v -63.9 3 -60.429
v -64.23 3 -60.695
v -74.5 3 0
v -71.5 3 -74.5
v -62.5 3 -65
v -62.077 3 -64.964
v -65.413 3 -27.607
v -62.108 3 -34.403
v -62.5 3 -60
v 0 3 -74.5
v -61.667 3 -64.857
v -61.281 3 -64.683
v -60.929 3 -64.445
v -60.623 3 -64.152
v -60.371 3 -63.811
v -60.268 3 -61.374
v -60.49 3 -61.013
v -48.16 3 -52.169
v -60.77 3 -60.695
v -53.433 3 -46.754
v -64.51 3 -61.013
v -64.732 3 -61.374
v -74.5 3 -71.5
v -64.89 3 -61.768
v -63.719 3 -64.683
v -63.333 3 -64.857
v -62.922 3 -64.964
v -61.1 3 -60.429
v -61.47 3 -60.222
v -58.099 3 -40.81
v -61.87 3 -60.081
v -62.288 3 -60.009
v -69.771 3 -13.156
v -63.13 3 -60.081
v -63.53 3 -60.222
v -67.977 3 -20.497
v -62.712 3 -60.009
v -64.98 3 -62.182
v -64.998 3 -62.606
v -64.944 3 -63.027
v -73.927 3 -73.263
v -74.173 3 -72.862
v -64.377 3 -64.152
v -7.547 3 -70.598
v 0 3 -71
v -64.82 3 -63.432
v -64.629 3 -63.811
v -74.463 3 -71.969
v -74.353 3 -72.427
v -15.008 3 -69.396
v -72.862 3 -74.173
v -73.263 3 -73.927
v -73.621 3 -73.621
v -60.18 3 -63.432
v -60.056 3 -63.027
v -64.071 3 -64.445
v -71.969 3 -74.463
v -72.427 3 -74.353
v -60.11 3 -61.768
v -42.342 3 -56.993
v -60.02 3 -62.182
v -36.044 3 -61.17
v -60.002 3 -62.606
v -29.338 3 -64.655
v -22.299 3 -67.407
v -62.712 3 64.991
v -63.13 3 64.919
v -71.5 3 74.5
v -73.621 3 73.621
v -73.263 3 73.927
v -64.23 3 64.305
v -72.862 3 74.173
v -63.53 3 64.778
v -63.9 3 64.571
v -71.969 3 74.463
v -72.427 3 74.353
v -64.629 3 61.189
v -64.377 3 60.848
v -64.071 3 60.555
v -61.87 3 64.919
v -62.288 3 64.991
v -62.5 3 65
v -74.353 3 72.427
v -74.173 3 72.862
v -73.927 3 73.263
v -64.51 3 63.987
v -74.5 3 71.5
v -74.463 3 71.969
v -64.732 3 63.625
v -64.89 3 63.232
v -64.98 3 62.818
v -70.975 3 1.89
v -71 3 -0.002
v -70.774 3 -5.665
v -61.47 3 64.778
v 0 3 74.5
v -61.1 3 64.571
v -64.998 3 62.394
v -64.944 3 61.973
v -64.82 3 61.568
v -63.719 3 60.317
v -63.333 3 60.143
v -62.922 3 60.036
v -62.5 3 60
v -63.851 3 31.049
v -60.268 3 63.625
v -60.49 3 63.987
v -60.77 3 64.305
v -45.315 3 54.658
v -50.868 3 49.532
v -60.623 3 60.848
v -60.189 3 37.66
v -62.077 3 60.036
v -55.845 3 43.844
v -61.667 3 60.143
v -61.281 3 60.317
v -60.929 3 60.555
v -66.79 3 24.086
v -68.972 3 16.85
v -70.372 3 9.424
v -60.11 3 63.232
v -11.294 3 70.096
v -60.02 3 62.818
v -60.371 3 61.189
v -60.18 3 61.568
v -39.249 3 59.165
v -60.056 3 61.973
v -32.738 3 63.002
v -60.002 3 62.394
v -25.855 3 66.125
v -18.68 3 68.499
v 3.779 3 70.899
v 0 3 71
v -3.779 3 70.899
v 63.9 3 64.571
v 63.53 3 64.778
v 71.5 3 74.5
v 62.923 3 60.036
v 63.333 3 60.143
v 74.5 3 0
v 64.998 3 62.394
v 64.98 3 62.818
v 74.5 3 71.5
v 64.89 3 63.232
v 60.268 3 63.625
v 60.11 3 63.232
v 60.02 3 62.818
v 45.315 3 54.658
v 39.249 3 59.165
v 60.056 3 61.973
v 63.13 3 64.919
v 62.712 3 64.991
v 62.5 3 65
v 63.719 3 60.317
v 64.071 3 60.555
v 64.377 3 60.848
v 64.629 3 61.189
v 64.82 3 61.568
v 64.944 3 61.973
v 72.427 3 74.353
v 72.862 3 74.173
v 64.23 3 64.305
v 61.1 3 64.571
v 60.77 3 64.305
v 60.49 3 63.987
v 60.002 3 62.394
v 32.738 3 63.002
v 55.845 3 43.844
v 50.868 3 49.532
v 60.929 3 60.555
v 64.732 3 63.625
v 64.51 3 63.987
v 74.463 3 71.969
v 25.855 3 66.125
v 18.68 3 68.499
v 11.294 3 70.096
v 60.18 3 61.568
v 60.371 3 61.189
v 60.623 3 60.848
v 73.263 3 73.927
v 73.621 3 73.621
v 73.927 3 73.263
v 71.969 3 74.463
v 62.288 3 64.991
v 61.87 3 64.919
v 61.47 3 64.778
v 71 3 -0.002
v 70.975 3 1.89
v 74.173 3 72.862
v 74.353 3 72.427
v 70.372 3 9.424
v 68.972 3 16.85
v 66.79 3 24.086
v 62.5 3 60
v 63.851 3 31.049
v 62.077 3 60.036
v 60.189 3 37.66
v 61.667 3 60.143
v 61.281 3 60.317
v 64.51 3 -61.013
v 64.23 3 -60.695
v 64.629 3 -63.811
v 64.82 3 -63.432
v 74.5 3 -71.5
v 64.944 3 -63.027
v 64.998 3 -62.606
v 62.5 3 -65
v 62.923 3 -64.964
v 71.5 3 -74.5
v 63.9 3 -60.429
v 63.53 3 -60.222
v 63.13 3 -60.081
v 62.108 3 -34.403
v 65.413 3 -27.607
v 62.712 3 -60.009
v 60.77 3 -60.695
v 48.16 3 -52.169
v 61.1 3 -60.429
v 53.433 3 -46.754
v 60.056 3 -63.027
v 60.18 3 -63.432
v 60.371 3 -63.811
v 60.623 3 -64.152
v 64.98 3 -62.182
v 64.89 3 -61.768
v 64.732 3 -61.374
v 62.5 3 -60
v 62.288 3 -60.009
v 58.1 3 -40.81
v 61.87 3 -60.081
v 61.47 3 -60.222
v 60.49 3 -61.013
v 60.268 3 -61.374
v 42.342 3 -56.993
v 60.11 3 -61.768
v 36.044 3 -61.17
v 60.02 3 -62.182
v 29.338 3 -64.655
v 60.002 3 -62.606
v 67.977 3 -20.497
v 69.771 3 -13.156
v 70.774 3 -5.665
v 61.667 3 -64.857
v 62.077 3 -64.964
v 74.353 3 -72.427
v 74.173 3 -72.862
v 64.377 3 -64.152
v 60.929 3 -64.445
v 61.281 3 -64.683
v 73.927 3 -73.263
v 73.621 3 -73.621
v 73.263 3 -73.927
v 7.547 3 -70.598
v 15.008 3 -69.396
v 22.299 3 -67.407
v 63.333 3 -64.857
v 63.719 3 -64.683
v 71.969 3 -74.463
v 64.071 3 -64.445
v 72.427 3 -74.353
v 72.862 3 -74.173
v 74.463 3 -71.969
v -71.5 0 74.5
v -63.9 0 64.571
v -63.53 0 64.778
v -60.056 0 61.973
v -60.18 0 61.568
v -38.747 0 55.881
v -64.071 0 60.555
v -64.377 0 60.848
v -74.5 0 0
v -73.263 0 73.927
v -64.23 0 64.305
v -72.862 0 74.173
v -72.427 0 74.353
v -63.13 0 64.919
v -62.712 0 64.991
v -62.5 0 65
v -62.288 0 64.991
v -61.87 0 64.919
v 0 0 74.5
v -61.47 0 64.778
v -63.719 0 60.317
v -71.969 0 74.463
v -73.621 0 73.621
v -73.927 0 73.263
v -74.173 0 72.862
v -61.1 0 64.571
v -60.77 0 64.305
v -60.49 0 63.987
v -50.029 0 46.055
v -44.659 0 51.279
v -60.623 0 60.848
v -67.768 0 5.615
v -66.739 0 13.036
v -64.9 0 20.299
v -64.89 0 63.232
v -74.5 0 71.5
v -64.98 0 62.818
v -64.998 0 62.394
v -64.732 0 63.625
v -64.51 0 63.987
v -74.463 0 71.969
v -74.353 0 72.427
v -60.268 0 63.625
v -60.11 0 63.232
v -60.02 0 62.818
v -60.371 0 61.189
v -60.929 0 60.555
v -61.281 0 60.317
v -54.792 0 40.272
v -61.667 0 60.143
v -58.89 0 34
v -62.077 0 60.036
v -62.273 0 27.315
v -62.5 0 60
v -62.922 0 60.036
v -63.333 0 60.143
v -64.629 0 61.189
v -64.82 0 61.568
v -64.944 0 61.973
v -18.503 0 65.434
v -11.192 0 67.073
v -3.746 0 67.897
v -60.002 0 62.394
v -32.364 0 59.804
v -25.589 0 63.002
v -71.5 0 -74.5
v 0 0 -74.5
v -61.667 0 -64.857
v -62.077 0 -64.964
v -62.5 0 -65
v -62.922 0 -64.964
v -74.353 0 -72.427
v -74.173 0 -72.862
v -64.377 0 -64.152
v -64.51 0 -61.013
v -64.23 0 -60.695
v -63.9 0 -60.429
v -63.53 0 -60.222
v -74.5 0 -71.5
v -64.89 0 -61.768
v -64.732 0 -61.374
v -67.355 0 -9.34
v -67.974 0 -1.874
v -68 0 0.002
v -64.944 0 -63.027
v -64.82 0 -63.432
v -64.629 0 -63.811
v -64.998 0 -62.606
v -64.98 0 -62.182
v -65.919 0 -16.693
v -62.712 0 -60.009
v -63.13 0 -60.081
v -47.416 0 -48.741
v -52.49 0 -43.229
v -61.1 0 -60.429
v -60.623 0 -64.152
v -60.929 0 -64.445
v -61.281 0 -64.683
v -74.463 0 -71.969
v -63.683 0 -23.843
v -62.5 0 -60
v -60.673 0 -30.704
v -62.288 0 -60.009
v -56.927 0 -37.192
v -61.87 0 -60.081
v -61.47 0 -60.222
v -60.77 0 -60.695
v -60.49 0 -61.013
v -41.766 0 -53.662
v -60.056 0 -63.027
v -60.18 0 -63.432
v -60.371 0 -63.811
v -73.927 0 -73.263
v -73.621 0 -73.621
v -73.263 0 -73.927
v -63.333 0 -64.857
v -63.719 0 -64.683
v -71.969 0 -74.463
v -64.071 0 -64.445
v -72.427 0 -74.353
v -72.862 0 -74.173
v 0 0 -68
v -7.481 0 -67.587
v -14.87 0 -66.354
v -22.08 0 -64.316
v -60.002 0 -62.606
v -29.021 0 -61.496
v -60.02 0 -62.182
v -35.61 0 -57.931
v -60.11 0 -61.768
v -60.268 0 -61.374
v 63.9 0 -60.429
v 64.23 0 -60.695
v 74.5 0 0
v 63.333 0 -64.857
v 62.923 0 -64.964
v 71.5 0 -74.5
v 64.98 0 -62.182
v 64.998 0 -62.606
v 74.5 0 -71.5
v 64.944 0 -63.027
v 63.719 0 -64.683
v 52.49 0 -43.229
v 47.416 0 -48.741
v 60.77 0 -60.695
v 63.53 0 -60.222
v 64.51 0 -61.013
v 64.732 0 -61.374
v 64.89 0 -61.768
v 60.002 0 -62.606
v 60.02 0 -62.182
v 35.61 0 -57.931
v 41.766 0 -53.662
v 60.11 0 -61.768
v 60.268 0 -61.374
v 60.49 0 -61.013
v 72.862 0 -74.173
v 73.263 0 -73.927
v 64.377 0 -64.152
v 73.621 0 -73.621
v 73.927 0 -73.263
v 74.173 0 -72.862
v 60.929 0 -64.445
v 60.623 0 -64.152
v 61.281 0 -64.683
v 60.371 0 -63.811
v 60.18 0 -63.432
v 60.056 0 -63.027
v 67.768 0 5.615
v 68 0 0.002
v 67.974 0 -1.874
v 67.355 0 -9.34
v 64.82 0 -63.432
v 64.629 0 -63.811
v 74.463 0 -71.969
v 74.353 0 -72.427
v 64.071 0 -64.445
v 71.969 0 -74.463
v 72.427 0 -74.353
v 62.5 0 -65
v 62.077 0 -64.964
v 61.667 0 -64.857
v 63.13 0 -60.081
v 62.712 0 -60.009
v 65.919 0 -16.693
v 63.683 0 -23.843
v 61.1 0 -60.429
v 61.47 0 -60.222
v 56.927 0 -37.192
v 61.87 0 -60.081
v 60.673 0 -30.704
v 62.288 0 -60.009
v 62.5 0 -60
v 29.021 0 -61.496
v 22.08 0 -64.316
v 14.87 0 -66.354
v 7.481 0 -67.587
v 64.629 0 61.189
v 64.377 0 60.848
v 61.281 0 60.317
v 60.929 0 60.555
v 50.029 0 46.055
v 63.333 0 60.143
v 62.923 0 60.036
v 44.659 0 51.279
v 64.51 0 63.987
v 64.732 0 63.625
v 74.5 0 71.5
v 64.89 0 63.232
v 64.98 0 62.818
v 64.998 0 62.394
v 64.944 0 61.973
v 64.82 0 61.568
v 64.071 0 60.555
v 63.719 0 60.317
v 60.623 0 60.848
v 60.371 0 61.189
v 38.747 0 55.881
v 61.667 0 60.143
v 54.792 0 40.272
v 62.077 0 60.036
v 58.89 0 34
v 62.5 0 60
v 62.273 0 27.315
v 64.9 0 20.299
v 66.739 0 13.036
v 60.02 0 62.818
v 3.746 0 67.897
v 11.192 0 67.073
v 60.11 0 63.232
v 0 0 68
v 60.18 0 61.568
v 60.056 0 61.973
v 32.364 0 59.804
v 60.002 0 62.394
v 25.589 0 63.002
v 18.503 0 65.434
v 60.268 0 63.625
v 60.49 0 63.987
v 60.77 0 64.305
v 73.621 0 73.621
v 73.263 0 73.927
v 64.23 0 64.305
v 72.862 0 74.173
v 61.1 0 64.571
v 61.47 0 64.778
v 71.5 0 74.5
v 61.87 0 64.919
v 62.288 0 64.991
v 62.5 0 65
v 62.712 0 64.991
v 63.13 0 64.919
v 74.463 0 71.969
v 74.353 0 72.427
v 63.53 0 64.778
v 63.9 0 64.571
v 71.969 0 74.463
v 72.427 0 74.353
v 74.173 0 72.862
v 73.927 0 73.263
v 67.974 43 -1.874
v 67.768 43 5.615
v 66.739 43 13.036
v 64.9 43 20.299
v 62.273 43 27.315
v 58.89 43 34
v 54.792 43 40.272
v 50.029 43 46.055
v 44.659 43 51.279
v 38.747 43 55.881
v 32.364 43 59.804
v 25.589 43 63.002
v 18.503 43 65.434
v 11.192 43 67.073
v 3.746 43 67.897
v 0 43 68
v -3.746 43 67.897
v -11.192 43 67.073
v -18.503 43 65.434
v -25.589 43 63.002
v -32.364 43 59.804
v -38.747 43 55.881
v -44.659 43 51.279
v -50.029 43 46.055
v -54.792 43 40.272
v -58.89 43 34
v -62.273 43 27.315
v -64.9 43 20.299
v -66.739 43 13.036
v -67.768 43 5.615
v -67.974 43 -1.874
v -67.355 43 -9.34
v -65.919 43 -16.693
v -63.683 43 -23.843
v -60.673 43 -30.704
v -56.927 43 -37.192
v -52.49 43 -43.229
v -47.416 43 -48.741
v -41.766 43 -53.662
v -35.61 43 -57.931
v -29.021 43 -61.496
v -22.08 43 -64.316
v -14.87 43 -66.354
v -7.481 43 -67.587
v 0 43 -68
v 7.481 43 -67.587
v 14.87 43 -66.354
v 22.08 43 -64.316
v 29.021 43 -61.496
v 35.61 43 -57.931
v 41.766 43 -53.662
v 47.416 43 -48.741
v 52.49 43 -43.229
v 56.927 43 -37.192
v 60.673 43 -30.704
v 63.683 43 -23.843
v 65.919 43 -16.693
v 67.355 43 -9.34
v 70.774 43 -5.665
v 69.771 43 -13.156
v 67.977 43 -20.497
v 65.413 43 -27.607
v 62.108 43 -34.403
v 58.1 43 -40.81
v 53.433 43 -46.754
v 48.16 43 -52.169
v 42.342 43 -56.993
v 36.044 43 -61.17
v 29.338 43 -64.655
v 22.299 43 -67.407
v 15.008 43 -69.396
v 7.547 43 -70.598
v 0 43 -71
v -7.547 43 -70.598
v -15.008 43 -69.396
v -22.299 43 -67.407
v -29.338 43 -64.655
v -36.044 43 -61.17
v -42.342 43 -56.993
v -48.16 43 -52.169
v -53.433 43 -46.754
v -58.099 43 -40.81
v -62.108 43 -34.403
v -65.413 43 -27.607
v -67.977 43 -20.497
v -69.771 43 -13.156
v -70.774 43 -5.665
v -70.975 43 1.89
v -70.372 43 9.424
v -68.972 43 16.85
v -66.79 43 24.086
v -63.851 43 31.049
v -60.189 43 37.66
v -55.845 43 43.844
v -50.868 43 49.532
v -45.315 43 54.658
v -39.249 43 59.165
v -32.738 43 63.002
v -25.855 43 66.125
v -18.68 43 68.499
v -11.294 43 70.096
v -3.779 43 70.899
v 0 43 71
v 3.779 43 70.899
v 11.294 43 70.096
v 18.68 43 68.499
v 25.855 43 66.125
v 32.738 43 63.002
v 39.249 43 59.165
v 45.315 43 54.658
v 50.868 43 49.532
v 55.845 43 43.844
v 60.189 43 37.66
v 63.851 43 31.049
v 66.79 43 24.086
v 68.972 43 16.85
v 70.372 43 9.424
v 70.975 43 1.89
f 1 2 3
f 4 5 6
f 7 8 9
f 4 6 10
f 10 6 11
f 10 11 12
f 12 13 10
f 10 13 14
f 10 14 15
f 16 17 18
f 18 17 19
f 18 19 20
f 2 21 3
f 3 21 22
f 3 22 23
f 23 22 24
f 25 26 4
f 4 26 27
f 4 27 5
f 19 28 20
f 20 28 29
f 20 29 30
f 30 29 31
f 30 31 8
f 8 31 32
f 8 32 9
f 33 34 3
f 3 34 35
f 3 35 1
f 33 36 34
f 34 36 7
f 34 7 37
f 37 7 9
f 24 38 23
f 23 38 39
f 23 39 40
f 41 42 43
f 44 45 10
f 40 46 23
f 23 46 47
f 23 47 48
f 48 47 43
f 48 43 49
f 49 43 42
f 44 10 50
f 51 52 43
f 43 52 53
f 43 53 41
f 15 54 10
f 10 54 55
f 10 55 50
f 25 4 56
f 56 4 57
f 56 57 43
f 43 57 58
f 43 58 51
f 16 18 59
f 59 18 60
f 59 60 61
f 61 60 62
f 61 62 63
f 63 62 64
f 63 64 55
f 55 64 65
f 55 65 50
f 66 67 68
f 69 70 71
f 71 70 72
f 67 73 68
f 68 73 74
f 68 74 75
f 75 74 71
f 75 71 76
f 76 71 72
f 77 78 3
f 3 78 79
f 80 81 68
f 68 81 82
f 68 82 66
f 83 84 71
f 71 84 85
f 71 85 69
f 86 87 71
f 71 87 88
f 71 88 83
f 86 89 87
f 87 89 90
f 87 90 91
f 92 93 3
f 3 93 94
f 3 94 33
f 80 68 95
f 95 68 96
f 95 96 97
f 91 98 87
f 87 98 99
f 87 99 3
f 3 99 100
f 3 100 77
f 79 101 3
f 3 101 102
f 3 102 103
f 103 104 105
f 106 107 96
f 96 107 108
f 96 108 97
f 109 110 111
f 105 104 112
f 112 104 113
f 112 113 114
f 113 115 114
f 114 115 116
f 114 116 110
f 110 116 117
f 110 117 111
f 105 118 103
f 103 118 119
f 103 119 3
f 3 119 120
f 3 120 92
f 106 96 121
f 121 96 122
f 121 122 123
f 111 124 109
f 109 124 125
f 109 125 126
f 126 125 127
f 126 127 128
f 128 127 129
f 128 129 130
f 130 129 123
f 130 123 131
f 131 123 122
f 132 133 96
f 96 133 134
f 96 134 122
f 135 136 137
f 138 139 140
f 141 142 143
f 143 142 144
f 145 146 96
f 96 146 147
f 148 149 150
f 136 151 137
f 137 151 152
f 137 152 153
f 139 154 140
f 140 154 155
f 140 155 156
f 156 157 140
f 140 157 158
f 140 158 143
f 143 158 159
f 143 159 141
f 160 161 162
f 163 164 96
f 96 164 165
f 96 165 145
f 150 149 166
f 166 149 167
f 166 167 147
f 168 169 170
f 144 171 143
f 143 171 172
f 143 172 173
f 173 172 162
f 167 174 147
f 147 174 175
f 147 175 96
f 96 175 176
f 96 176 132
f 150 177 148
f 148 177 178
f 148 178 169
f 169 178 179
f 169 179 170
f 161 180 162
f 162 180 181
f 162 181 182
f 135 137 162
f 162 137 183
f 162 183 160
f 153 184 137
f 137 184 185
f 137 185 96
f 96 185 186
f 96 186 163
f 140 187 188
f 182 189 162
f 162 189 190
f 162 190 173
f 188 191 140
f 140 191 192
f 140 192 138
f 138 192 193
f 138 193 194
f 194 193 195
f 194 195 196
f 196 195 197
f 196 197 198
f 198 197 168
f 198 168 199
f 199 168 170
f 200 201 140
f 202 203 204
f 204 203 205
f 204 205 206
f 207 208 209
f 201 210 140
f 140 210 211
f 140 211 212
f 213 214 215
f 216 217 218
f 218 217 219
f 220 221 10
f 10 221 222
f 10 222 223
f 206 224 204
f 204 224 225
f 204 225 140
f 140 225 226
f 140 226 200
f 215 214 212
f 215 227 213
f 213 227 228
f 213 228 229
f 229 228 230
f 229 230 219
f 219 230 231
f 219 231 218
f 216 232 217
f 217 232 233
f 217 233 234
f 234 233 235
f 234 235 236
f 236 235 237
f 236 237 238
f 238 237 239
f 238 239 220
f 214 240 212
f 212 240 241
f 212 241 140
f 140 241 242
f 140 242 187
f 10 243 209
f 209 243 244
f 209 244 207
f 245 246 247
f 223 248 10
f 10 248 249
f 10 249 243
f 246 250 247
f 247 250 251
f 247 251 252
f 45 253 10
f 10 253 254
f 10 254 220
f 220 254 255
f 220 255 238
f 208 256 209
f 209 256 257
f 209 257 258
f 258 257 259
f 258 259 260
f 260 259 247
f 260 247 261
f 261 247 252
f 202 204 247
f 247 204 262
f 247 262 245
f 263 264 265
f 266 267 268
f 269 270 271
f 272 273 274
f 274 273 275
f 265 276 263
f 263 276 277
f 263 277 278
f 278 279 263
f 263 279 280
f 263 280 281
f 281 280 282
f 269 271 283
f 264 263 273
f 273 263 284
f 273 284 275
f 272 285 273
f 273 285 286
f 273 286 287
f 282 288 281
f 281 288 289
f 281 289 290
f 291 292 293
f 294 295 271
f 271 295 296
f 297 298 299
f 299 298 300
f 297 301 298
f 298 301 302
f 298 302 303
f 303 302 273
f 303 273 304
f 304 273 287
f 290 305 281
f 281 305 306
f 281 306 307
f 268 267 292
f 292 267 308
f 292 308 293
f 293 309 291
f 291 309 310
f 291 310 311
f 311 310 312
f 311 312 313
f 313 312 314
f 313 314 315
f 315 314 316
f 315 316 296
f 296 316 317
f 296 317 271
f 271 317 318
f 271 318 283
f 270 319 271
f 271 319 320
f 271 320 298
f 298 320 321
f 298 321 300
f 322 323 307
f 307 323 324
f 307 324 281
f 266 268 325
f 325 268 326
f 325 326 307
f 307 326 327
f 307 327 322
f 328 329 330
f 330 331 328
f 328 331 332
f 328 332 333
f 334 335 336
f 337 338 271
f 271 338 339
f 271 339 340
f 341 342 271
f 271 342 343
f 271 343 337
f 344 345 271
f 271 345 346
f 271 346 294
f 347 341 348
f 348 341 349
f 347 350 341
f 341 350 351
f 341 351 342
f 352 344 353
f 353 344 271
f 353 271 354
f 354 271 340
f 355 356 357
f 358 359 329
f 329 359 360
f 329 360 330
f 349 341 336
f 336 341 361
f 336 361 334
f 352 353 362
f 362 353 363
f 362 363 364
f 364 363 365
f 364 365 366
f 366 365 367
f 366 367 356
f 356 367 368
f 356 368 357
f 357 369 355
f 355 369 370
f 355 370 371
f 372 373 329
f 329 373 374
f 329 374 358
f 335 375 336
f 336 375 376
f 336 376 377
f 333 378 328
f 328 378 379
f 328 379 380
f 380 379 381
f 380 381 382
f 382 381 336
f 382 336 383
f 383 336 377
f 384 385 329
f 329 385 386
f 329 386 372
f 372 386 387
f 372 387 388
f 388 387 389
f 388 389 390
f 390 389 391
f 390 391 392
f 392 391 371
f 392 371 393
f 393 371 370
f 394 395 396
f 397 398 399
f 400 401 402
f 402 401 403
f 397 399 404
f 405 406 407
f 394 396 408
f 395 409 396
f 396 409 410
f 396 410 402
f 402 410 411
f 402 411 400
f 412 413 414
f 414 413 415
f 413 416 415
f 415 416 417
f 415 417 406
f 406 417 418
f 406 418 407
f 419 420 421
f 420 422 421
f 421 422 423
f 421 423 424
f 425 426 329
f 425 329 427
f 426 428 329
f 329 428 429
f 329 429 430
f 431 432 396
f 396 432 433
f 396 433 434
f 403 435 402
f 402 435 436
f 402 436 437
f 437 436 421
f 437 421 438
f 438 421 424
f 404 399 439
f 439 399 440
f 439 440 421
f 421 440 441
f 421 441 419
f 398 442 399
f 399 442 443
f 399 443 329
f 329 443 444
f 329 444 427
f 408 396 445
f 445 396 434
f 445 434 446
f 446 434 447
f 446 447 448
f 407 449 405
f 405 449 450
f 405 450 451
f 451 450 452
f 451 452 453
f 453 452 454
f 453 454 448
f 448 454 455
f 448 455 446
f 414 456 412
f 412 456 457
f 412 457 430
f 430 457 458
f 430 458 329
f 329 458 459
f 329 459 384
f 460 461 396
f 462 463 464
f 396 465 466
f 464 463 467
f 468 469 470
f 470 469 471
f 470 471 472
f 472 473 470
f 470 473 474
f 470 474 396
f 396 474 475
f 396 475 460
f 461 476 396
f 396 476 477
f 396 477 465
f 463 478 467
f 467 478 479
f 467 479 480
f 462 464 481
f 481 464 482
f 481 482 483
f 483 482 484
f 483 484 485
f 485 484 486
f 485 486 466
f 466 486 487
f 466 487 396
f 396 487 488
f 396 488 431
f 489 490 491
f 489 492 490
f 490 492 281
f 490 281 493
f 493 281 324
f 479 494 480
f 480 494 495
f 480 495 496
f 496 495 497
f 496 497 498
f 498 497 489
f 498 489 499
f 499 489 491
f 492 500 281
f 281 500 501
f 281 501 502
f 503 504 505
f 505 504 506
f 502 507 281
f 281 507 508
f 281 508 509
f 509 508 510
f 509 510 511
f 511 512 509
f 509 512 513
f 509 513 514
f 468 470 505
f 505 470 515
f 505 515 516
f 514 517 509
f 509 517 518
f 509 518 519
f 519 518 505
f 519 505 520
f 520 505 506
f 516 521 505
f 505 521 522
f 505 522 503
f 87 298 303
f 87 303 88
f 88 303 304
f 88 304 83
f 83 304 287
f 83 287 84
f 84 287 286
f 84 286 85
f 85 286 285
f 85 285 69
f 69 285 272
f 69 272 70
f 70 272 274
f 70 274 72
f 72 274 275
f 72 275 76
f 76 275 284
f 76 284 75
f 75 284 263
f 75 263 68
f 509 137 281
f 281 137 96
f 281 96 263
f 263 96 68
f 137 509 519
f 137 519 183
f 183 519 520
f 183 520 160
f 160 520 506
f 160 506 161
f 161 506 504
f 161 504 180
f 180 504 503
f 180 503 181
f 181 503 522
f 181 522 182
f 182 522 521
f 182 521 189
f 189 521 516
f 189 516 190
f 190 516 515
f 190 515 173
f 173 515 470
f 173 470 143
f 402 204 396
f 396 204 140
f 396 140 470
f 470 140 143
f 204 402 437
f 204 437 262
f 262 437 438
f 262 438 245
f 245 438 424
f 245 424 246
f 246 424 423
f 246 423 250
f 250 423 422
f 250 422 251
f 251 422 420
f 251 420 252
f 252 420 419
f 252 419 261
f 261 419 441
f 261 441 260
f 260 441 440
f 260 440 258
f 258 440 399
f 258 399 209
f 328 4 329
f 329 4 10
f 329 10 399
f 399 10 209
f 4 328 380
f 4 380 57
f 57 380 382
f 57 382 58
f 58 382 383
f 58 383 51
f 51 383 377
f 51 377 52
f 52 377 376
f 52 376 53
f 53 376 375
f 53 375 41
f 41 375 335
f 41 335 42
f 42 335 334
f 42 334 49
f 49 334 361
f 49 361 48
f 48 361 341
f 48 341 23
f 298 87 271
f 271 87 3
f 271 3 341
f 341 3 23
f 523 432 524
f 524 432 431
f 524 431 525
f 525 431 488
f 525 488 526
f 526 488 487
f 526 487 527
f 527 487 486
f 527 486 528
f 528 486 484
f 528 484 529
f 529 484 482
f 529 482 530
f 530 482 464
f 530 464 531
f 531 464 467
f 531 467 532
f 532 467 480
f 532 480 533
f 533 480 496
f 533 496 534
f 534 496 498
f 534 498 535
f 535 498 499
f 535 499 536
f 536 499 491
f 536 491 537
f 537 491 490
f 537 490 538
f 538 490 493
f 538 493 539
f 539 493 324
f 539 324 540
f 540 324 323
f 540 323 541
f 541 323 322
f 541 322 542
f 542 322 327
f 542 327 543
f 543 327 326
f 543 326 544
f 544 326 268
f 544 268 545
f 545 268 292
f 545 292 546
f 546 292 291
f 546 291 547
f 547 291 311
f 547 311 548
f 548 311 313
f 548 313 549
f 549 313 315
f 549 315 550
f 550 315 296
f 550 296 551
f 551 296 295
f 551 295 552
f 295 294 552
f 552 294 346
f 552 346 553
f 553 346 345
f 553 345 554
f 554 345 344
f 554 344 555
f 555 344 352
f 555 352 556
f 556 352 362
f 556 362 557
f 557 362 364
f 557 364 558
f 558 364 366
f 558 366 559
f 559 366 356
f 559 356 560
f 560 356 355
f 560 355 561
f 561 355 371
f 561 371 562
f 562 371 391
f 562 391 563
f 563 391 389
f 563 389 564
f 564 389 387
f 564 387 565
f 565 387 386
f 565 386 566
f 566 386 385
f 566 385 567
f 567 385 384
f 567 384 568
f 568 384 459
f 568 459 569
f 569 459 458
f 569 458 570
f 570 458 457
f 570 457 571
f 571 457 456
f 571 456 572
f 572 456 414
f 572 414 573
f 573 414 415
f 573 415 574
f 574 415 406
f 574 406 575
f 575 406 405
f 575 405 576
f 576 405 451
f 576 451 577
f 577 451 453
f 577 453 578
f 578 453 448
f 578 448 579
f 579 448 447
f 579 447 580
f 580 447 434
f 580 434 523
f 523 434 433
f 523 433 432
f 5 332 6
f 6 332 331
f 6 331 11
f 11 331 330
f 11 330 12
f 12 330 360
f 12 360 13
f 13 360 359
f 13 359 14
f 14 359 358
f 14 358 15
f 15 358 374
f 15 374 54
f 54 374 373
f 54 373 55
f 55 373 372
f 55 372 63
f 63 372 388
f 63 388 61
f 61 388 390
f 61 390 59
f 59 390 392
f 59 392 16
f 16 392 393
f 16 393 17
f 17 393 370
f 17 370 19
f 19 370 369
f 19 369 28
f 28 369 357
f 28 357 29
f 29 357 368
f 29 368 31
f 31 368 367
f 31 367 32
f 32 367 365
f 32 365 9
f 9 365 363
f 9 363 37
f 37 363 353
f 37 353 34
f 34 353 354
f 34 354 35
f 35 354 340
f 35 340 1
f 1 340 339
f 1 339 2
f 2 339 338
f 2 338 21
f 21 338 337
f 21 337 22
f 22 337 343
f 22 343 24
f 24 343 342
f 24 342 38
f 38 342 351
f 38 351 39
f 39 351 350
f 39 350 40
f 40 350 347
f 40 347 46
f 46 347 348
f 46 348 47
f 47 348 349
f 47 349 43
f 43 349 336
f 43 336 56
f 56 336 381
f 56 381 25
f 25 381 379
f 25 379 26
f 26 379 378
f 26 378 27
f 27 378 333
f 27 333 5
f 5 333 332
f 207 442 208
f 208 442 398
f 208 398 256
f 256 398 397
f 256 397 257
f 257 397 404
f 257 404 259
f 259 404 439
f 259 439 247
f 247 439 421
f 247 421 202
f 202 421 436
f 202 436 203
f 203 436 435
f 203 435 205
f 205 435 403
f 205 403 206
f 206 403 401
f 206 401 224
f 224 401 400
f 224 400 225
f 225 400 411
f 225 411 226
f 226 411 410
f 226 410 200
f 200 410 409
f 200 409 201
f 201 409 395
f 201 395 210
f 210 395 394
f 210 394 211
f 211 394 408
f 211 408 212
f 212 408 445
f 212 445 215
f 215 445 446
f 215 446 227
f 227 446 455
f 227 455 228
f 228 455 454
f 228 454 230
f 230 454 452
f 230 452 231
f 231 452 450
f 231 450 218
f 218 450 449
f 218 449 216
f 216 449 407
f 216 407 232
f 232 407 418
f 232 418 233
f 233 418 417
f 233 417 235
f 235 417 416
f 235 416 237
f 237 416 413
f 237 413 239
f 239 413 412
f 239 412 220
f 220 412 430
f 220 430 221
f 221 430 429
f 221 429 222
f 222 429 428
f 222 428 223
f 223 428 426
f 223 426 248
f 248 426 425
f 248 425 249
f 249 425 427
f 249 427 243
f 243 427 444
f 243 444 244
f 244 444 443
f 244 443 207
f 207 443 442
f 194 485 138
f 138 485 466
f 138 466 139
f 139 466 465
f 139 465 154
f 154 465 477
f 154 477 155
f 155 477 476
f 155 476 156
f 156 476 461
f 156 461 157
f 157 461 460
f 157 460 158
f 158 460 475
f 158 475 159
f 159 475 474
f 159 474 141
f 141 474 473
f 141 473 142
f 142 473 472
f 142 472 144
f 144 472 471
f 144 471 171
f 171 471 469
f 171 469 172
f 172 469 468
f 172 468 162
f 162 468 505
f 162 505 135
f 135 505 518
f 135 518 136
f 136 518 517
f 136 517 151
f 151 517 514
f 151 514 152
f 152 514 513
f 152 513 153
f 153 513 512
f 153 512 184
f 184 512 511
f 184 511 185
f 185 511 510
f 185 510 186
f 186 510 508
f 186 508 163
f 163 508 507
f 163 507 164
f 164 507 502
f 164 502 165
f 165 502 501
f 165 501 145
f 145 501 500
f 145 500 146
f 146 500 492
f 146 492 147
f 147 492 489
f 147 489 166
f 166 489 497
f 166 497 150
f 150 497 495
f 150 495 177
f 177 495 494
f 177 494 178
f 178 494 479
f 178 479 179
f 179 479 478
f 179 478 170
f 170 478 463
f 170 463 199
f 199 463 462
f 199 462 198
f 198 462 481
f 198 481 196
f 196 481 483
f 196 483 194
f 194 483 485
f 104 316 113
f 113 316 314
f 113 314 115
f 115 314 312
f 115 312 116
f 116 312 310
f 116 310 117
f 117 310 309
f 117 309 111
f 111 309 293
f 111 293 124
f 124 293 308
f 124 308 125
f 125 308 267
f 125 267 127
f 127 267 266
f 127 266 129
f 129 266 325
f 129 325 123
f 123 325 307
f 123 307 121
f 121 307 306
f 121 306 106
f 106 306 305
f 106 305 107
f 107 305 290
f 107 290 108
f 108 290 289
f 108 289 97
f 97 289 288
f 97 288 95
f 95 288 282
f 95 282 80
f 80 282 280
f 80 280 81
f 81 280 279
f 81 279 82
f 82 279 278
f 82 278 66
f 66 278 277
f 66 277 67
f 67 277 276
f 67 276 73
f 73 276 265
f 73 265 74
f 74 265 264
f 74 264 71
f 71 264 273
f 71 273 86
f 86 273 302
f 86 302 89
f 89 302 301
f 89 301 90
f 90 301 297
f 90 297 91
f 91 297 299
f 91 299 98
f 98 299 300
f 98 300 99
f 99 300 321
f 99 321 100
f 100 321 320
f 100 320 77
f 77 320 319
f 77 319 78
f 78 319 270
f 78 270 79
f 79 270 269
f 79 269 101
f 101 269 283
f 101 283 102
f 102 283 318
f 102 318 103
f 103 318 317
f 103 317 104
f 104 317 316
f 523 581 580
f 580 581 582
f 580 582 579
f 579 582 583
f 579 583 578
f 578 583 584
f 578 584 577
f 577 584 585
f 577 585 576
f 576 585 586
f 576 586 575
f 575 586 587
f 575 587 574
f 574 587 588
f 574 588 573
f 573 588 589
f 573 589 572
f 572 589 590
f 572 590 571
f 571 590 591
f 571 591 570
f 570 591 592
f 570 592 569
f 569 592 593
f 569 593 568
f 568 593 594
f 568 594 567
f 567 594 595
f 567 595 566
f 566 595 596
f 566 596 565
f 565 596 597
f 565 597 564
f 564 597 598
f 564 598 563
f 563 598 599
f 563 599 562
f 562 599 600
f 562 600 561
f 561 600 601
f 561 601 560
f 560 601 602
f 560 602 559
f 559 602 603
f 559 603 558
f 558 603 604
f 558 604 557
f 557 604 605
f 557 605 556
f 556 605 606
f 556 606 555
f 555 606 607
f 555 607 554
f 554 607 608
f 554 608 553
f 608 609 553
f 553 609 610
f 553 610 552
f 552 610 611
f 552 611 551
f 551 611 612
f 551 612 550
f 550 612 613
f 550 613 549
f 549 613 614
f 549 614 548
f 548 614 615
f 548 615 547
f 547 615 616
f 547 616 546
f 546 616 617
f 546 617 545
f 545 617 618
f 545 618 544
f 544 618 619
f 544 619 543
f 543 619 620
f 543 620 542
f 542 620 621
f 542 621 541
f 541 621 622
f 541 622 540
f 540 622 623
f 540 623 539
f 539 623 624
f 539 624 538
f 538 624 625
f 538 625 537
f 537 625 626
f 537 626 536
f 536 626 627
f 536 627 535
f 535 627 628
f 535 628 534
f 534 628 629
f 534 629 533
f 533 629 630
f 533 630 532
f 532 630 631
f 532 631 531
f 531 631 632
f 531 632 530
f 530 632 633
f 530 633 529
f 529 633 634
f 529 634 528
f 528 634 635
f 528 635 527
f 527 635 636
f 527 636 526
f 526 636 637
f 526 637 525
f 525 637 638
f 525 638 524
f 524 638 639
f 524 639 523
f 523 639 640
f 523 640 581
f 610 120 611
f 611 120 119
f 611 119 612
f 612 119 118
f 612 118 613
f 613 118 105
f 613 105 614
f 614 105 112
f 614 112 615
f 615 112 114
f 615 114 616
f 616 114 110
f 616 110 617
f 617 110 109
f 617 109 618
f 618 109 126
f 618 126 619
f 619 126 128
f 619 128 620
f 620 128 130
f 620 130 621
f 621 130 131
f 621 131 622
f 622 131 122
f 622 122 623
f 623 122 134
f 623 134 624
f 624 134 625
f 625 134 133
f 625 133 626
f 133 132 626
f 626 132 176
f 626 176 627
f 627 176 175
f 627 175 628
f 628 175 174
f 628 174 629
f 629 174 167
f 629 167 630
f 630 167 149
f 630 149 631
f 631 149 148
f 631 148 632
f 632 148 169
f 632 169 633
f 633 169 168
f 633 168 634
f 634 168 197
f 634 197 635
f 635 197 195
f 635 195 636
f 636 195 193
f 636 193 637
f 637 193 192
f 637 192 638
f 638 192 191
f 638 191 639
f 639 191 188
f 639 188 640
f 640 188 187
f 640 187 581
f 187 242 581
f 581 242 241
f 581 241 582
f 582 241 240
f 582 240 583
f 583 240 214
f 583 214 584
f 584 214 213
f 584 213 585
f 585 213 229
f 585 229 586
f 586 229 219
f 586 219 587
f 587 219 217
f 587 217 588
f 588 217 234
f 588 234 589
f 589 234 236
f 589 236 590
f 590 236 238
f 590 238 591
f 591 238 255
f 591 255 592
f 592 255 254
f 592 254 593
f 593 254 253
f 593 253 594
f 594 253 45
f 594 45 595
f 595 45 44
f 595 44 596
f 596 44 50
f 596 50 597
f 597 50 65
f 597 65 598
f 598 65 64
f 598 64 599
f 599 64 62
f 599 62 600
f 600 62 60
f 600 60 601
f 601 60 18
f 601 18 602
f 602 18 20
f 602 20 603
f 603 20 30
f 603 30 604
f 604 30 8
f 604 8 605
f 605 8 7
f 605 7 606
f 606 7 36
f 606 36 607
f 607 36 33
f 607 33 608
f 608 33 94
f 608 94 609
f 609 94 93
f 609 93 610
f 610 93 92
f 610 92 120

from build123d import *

# Parameters (mm, degrees)
SKETCH4_R           = 68
SKETCH4_R_2         = 2.5
BOSS_EXTRUDE5_DEPTH = 3
SKETCH5_R           = 71
SKETCH5_R_2         = 68
BOSS_EXTRUDE6_DEPTH = 40


with BuildPart() as part:
    # Sketch4 → Boss-Extrude5 (new body)
    with BuildSketch(Plane(origin=(0, 0, 0), x_dir=(1, 0, 0), z_dir=(0, 1, 0))):
        with BuildLine():
            Line((-71.5, 74.5), (71.5, 74.5))
            ThreePointArc((71.5, 74.5), (73.621320344, 73.621320344), (74.5, 71.5))
            Line((74.5, 71.5), (74.5, -71.5))
            ThreePointArc((74.5, -71.5), (73.621320344, -73.621320344), (71.5, -74.5))
            Line((71.5, -74.5), (-71.5, -74.5))
            ThreePointArc((-71.5, -74.5), (-73.621320344, -73.621320344), (-74.5, -71.5))
            Line((-74.5, -71.5), (-74.5, 71.5))
            ThreePointArc((-74.5, 71.5), (-73.621320344, 73.621320344), (-71.5, 74.5))
        make_face()
        Circle(SKETCH4_R, mode=Mode.SUBTRACT)
        with Locations((-62.5, 62.5)):
            Circle(SKETCH4_R_2, mode=Mode.SUBTRACT)
        with Locations((62.5, 62.5)):
            Circle(SKETCH4_R_2, mode=Mode.SUBTRACT)
        with Locations((62.5, -62.5)):
            Circle(SKETCH4_R_2, mode=Mode.SUBTRACT)
        with Locations((-62.5, -62.5)):
            Circle(SKETCH4_R_2, mode=Mode.SUBTRACT)
    extrude(amount=BOSS_EXTRUDE5_DEPTH)

    # Sketch5 → Boss-Extrude6 (add)
    with BuildSketch(Plane(origin=(0, 3, 0), x_dir=(1, 0, 0), z_dir=(0, 1, 0))):
        Circle(SKETCH5_R)
        Circle(SKETCH5_R_2, mode=Mode.SUBTRACT)
    extrude(amount=BOSS_EXTRUDE6_DEPTH)


solid = part.part
